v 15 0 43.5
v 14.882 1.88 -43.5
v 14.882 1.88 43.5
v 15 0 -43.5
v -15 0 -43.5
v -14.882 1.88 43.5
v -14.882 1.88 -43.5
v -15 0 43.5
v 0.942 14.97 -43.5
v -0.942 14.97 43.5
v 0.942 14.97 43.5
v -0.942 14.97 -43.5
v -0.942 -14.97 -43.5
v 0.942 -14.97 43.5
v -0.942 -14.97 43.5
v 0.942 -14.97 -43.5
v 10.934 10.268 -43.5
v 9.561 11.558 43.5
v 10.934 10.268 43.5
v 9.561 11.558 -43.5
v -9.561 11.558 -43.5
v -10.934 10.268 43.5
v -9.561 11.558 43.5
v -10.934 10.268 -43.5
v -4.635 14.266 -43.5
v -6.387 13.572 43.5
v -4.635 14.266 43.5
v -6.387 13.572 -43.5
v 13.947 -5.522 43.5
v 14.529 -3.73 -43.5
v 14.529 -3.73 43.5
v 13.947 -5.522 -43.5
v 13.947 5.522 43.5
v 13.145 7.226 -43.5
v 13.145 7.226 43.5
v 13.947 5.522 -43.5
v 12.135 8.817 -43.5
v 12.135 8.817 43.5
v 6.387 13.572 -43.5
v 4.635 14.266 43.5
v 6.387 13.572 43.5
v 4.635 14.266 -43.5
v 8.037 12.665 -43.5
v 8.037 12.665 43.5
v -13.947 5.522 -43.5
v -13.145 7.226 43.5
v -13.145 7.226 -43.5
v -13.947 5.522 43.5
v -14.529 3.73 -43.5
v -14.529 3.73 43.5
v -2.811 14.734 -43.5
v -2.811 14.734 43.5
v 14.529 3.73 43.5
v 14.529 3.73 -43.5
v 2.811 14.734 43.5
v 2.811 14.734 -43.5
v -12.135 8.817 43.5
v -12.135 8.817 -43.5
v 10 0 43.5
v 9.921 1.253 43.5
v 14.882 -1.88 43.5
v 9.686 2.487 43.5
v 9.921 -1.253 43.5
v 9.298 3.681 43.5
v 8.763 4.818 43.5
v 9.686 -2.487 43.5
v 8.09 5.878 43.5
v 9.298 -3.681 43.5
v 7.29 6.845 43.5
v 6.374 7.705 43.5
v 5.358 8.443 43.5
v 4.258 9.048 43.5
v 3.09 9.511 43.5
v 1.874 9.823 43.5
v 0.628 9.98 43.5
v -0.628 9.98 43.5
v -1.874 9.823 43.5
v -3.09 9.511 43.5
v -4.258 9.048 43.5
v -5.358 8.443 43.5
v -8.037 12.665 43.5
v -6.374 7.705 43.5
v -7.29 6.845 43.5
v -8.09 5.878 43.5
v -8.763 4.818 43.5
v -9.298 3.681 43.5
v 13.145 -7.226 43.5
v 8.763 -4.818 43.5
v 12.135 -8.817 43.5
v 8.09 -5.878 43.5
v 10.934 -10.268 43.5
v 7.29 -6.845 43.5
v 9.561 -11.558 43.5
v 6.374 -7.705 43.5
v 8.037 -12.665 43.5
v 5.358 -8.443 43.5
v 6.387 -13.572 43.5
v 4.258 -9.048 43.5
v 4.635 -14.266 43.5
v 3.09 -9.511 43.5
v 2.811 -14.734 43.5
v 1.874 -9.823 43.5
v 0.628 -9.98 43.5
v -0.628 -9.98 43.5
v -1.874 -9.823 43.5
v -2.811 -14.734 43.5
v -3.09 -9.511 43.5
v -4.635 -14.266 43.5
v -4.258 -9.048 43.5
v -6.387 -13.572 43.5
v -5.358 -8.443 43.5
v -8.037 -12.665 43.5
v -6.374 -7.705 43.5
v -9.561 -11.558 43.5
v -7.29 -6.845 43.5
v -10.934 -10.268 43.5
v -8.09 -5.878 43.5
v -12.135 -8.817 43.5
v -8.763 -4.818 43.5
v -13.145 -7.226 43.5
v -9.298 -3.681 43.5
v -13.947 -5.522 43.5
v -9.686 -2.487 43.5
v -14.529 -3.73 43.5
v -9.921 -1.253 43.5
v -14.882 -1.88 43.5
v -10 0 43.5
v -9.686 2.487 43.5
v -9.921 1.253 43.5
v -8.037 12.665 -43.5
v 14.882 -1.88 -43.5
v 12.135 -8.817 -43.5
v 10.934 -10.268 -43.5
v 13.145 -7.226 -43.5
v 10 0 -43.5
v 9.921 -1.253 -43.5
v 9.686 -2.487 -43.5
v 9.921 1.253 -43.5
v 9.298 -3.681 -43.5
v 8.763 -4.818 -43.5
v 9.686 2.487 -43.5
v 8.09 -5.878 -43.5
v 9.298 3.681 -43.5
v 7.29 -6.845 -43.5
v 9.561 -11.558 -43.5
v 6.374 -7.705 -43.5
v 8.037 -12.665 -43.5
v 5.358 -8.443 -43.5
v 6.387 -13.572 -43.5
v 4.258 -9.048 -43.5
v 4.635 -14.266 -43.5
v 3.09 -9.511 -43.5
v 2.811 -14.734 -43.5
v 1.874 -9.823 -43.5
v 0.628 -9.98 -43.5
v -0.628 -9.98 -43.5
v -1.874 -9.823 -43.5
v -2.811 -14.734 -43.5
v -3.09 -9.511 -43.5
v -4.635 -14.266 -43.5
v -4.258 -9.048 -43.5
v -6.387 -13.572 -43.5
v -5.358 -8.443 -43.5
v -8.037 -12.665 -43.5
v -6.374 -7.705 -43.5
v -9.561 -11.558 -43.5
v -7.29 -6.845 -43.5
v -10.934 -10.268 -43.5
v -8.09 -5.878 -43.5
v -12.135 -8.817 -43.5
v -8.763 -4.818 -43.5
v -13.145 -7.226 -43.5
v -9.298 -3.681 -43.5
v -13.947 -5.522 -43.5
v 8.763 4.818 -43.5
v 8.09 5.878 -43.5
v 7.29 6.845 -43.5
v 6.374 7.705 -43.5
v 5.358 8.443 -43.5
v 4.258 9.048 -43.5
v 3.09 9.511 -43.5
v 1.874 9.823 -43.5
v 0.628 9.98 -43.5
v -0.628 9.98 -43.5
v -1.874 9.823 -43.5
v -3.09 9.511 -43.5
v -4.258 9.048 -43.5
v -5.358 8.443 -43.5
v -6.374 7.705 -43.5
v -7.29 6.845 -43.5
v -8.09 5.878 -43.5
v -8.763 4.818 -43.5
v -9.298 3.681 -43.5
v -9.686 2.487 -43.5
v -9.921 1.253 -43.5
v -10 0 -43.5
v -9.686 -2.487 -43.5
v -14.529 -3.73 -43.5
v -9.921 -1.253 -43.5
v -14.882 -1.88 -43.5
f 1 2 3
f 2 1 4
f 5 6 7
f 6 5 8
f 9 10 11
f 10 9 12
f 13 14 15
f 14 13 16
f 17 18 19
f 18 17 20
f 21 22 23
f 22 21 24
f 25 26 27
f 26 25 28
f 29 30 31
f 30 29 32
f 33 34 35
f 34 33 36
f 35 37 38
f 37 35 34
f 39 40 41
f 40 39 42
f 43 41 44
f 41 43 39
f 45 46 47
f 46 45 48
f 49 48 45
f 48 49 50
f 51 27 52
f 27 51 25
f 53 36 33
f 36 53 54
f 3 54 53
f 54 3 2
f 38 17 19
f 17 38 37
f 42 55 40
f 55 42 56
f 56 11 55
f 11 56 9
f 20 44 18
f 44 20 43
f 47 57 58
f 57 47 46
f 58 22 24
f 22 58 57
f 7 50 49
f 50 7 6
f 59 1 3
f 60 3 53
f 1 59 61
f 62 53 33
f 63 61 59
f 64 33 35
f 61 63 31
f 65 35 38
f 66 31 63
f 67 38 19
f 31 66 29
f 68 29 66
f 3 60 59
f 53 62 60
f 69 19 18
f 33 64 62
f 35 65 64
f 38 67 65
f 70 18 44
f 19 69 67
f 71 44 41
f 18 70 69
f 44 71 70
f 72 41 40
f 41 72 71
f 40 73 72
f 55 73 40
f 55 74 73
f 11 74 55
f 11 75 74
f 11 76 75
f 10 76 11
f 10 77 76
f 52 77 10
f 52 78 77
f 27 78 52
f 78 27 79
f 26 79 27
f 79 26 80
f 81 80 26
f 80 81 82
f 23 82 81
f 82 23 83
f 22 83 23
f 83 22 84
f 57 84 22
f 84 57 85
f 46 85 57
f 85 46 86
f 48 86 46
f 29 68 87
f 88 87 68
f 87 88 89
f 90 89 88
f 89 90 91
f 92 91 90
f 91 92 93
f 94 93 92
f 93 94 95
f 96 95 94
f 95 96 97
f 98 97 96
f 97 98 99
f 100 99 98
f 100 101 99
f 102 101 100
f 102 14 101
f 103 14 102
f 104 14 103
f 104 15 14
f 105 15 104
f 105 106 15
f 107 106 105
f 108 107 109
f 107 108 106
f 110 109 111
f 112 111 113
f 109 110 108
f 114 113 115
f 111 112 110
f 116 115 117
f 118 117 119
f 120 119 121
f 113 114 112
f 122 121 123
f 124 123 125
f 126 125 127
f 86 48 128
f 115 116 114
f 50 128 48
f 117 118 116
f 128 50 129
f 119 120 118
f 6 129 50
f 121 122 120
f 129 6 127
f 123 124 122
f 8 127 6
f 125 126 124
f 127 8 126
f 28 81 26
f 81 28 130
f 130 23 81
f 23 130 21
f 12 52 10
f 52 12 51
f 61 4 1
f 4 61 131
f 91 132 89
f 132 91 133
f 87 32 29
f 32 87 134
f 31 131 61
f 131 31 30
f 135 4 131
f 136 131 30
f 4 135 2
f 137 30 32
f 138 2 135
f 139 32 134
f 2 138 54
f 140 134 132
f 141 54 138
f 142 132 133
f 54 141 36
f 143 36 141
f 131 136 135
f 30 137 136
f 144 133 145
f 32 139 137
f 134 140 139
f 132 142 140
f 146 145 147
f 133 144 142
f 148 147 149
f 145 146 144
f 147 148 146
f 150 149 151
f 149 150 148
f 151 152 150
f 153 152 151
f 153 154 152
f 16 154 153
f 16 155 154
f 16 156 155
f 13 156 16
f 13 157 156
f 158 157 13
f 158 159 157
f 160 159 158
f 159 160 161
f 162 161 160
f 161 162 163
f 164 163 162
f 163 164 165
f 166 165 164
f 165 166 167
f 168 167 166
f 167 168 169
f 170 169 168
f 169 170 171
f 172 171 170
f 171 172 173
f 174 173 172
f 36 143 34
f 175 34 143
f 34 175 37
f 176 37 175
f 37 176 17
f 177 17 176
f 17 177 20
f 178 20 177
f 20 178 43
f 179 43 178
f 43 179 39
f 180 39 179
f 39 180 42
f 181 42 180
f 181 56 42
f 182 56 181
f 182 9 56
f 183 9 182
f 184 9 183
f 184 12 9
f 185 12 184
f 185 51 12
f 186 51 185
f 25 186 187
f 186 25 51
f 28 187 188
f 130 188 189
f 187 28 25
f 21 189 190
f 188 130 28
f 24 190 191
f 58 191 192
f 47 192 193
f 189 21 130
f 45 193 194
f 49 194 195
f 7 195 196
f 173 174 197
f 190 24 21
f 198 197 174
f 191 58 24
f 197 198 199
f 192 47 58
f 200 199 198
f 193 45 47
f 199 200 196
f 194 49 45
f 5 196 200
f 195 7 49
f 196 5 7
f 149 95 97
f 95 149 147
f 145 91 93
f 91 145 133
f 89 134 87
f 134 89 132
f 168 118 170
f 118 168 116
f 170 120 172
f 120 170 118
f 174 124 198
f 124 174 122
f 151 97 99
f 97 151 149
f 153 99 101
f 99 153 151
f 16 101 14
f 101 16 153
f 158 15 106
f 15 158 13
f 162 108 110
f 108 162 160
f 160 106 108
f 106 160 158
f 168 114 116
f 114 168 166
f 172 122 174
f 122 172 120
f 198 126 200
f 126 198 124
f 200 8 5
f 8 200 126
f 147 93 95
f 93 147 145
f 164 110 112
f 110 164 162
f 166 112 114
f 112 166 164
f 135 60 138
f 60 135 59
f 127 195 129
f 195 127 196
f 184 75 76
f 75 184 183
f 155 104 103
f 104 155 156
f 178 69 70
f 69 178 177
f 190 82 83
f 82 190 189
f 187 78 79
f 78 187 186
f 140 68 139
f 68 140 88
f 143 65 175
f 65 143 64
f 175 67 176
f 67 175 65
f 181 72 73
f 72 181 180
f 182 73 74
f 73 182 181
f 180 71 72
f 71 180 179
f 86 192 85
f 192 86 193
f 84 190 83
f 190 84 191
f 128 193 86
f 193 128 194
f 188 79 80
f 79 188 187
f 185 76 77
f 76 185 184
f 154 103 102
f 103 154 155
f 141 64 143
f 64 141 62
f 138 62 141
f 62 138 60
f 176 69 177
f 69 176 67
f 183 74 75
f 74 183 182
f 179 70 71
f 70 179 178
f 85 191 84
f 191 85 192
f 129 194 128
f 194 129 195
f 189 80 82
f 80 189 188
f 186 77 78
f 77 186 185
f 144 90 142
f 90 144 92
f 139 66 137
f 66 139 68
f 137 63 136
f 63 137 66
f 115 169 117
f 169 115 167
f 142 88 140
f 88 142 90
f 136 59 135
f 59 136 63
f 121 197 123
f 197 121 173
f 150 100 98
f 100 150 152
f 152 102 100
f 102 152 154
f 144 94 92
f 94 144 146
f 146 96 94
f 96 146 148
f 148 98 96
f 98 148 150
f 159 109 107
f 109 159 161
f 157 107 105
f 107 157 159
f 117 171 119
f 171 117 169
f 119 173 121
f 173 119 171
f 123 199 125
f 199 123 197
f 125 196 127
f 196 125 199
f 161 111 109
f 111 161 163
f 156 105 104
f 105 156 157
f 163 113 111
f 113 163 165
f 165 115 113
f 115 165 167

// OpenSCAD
$fn = 50;


difference() {
	union() {
		translate(v = [0, 0, -43.5000000000]) {
			cylinder(h = 87, r = 15.0000000000);
		}
	}
	union() {
		translate(v = [0, 0, -100.0000000000]) {
			cylinder(h = 200, r = 10);
		}
	}
}
